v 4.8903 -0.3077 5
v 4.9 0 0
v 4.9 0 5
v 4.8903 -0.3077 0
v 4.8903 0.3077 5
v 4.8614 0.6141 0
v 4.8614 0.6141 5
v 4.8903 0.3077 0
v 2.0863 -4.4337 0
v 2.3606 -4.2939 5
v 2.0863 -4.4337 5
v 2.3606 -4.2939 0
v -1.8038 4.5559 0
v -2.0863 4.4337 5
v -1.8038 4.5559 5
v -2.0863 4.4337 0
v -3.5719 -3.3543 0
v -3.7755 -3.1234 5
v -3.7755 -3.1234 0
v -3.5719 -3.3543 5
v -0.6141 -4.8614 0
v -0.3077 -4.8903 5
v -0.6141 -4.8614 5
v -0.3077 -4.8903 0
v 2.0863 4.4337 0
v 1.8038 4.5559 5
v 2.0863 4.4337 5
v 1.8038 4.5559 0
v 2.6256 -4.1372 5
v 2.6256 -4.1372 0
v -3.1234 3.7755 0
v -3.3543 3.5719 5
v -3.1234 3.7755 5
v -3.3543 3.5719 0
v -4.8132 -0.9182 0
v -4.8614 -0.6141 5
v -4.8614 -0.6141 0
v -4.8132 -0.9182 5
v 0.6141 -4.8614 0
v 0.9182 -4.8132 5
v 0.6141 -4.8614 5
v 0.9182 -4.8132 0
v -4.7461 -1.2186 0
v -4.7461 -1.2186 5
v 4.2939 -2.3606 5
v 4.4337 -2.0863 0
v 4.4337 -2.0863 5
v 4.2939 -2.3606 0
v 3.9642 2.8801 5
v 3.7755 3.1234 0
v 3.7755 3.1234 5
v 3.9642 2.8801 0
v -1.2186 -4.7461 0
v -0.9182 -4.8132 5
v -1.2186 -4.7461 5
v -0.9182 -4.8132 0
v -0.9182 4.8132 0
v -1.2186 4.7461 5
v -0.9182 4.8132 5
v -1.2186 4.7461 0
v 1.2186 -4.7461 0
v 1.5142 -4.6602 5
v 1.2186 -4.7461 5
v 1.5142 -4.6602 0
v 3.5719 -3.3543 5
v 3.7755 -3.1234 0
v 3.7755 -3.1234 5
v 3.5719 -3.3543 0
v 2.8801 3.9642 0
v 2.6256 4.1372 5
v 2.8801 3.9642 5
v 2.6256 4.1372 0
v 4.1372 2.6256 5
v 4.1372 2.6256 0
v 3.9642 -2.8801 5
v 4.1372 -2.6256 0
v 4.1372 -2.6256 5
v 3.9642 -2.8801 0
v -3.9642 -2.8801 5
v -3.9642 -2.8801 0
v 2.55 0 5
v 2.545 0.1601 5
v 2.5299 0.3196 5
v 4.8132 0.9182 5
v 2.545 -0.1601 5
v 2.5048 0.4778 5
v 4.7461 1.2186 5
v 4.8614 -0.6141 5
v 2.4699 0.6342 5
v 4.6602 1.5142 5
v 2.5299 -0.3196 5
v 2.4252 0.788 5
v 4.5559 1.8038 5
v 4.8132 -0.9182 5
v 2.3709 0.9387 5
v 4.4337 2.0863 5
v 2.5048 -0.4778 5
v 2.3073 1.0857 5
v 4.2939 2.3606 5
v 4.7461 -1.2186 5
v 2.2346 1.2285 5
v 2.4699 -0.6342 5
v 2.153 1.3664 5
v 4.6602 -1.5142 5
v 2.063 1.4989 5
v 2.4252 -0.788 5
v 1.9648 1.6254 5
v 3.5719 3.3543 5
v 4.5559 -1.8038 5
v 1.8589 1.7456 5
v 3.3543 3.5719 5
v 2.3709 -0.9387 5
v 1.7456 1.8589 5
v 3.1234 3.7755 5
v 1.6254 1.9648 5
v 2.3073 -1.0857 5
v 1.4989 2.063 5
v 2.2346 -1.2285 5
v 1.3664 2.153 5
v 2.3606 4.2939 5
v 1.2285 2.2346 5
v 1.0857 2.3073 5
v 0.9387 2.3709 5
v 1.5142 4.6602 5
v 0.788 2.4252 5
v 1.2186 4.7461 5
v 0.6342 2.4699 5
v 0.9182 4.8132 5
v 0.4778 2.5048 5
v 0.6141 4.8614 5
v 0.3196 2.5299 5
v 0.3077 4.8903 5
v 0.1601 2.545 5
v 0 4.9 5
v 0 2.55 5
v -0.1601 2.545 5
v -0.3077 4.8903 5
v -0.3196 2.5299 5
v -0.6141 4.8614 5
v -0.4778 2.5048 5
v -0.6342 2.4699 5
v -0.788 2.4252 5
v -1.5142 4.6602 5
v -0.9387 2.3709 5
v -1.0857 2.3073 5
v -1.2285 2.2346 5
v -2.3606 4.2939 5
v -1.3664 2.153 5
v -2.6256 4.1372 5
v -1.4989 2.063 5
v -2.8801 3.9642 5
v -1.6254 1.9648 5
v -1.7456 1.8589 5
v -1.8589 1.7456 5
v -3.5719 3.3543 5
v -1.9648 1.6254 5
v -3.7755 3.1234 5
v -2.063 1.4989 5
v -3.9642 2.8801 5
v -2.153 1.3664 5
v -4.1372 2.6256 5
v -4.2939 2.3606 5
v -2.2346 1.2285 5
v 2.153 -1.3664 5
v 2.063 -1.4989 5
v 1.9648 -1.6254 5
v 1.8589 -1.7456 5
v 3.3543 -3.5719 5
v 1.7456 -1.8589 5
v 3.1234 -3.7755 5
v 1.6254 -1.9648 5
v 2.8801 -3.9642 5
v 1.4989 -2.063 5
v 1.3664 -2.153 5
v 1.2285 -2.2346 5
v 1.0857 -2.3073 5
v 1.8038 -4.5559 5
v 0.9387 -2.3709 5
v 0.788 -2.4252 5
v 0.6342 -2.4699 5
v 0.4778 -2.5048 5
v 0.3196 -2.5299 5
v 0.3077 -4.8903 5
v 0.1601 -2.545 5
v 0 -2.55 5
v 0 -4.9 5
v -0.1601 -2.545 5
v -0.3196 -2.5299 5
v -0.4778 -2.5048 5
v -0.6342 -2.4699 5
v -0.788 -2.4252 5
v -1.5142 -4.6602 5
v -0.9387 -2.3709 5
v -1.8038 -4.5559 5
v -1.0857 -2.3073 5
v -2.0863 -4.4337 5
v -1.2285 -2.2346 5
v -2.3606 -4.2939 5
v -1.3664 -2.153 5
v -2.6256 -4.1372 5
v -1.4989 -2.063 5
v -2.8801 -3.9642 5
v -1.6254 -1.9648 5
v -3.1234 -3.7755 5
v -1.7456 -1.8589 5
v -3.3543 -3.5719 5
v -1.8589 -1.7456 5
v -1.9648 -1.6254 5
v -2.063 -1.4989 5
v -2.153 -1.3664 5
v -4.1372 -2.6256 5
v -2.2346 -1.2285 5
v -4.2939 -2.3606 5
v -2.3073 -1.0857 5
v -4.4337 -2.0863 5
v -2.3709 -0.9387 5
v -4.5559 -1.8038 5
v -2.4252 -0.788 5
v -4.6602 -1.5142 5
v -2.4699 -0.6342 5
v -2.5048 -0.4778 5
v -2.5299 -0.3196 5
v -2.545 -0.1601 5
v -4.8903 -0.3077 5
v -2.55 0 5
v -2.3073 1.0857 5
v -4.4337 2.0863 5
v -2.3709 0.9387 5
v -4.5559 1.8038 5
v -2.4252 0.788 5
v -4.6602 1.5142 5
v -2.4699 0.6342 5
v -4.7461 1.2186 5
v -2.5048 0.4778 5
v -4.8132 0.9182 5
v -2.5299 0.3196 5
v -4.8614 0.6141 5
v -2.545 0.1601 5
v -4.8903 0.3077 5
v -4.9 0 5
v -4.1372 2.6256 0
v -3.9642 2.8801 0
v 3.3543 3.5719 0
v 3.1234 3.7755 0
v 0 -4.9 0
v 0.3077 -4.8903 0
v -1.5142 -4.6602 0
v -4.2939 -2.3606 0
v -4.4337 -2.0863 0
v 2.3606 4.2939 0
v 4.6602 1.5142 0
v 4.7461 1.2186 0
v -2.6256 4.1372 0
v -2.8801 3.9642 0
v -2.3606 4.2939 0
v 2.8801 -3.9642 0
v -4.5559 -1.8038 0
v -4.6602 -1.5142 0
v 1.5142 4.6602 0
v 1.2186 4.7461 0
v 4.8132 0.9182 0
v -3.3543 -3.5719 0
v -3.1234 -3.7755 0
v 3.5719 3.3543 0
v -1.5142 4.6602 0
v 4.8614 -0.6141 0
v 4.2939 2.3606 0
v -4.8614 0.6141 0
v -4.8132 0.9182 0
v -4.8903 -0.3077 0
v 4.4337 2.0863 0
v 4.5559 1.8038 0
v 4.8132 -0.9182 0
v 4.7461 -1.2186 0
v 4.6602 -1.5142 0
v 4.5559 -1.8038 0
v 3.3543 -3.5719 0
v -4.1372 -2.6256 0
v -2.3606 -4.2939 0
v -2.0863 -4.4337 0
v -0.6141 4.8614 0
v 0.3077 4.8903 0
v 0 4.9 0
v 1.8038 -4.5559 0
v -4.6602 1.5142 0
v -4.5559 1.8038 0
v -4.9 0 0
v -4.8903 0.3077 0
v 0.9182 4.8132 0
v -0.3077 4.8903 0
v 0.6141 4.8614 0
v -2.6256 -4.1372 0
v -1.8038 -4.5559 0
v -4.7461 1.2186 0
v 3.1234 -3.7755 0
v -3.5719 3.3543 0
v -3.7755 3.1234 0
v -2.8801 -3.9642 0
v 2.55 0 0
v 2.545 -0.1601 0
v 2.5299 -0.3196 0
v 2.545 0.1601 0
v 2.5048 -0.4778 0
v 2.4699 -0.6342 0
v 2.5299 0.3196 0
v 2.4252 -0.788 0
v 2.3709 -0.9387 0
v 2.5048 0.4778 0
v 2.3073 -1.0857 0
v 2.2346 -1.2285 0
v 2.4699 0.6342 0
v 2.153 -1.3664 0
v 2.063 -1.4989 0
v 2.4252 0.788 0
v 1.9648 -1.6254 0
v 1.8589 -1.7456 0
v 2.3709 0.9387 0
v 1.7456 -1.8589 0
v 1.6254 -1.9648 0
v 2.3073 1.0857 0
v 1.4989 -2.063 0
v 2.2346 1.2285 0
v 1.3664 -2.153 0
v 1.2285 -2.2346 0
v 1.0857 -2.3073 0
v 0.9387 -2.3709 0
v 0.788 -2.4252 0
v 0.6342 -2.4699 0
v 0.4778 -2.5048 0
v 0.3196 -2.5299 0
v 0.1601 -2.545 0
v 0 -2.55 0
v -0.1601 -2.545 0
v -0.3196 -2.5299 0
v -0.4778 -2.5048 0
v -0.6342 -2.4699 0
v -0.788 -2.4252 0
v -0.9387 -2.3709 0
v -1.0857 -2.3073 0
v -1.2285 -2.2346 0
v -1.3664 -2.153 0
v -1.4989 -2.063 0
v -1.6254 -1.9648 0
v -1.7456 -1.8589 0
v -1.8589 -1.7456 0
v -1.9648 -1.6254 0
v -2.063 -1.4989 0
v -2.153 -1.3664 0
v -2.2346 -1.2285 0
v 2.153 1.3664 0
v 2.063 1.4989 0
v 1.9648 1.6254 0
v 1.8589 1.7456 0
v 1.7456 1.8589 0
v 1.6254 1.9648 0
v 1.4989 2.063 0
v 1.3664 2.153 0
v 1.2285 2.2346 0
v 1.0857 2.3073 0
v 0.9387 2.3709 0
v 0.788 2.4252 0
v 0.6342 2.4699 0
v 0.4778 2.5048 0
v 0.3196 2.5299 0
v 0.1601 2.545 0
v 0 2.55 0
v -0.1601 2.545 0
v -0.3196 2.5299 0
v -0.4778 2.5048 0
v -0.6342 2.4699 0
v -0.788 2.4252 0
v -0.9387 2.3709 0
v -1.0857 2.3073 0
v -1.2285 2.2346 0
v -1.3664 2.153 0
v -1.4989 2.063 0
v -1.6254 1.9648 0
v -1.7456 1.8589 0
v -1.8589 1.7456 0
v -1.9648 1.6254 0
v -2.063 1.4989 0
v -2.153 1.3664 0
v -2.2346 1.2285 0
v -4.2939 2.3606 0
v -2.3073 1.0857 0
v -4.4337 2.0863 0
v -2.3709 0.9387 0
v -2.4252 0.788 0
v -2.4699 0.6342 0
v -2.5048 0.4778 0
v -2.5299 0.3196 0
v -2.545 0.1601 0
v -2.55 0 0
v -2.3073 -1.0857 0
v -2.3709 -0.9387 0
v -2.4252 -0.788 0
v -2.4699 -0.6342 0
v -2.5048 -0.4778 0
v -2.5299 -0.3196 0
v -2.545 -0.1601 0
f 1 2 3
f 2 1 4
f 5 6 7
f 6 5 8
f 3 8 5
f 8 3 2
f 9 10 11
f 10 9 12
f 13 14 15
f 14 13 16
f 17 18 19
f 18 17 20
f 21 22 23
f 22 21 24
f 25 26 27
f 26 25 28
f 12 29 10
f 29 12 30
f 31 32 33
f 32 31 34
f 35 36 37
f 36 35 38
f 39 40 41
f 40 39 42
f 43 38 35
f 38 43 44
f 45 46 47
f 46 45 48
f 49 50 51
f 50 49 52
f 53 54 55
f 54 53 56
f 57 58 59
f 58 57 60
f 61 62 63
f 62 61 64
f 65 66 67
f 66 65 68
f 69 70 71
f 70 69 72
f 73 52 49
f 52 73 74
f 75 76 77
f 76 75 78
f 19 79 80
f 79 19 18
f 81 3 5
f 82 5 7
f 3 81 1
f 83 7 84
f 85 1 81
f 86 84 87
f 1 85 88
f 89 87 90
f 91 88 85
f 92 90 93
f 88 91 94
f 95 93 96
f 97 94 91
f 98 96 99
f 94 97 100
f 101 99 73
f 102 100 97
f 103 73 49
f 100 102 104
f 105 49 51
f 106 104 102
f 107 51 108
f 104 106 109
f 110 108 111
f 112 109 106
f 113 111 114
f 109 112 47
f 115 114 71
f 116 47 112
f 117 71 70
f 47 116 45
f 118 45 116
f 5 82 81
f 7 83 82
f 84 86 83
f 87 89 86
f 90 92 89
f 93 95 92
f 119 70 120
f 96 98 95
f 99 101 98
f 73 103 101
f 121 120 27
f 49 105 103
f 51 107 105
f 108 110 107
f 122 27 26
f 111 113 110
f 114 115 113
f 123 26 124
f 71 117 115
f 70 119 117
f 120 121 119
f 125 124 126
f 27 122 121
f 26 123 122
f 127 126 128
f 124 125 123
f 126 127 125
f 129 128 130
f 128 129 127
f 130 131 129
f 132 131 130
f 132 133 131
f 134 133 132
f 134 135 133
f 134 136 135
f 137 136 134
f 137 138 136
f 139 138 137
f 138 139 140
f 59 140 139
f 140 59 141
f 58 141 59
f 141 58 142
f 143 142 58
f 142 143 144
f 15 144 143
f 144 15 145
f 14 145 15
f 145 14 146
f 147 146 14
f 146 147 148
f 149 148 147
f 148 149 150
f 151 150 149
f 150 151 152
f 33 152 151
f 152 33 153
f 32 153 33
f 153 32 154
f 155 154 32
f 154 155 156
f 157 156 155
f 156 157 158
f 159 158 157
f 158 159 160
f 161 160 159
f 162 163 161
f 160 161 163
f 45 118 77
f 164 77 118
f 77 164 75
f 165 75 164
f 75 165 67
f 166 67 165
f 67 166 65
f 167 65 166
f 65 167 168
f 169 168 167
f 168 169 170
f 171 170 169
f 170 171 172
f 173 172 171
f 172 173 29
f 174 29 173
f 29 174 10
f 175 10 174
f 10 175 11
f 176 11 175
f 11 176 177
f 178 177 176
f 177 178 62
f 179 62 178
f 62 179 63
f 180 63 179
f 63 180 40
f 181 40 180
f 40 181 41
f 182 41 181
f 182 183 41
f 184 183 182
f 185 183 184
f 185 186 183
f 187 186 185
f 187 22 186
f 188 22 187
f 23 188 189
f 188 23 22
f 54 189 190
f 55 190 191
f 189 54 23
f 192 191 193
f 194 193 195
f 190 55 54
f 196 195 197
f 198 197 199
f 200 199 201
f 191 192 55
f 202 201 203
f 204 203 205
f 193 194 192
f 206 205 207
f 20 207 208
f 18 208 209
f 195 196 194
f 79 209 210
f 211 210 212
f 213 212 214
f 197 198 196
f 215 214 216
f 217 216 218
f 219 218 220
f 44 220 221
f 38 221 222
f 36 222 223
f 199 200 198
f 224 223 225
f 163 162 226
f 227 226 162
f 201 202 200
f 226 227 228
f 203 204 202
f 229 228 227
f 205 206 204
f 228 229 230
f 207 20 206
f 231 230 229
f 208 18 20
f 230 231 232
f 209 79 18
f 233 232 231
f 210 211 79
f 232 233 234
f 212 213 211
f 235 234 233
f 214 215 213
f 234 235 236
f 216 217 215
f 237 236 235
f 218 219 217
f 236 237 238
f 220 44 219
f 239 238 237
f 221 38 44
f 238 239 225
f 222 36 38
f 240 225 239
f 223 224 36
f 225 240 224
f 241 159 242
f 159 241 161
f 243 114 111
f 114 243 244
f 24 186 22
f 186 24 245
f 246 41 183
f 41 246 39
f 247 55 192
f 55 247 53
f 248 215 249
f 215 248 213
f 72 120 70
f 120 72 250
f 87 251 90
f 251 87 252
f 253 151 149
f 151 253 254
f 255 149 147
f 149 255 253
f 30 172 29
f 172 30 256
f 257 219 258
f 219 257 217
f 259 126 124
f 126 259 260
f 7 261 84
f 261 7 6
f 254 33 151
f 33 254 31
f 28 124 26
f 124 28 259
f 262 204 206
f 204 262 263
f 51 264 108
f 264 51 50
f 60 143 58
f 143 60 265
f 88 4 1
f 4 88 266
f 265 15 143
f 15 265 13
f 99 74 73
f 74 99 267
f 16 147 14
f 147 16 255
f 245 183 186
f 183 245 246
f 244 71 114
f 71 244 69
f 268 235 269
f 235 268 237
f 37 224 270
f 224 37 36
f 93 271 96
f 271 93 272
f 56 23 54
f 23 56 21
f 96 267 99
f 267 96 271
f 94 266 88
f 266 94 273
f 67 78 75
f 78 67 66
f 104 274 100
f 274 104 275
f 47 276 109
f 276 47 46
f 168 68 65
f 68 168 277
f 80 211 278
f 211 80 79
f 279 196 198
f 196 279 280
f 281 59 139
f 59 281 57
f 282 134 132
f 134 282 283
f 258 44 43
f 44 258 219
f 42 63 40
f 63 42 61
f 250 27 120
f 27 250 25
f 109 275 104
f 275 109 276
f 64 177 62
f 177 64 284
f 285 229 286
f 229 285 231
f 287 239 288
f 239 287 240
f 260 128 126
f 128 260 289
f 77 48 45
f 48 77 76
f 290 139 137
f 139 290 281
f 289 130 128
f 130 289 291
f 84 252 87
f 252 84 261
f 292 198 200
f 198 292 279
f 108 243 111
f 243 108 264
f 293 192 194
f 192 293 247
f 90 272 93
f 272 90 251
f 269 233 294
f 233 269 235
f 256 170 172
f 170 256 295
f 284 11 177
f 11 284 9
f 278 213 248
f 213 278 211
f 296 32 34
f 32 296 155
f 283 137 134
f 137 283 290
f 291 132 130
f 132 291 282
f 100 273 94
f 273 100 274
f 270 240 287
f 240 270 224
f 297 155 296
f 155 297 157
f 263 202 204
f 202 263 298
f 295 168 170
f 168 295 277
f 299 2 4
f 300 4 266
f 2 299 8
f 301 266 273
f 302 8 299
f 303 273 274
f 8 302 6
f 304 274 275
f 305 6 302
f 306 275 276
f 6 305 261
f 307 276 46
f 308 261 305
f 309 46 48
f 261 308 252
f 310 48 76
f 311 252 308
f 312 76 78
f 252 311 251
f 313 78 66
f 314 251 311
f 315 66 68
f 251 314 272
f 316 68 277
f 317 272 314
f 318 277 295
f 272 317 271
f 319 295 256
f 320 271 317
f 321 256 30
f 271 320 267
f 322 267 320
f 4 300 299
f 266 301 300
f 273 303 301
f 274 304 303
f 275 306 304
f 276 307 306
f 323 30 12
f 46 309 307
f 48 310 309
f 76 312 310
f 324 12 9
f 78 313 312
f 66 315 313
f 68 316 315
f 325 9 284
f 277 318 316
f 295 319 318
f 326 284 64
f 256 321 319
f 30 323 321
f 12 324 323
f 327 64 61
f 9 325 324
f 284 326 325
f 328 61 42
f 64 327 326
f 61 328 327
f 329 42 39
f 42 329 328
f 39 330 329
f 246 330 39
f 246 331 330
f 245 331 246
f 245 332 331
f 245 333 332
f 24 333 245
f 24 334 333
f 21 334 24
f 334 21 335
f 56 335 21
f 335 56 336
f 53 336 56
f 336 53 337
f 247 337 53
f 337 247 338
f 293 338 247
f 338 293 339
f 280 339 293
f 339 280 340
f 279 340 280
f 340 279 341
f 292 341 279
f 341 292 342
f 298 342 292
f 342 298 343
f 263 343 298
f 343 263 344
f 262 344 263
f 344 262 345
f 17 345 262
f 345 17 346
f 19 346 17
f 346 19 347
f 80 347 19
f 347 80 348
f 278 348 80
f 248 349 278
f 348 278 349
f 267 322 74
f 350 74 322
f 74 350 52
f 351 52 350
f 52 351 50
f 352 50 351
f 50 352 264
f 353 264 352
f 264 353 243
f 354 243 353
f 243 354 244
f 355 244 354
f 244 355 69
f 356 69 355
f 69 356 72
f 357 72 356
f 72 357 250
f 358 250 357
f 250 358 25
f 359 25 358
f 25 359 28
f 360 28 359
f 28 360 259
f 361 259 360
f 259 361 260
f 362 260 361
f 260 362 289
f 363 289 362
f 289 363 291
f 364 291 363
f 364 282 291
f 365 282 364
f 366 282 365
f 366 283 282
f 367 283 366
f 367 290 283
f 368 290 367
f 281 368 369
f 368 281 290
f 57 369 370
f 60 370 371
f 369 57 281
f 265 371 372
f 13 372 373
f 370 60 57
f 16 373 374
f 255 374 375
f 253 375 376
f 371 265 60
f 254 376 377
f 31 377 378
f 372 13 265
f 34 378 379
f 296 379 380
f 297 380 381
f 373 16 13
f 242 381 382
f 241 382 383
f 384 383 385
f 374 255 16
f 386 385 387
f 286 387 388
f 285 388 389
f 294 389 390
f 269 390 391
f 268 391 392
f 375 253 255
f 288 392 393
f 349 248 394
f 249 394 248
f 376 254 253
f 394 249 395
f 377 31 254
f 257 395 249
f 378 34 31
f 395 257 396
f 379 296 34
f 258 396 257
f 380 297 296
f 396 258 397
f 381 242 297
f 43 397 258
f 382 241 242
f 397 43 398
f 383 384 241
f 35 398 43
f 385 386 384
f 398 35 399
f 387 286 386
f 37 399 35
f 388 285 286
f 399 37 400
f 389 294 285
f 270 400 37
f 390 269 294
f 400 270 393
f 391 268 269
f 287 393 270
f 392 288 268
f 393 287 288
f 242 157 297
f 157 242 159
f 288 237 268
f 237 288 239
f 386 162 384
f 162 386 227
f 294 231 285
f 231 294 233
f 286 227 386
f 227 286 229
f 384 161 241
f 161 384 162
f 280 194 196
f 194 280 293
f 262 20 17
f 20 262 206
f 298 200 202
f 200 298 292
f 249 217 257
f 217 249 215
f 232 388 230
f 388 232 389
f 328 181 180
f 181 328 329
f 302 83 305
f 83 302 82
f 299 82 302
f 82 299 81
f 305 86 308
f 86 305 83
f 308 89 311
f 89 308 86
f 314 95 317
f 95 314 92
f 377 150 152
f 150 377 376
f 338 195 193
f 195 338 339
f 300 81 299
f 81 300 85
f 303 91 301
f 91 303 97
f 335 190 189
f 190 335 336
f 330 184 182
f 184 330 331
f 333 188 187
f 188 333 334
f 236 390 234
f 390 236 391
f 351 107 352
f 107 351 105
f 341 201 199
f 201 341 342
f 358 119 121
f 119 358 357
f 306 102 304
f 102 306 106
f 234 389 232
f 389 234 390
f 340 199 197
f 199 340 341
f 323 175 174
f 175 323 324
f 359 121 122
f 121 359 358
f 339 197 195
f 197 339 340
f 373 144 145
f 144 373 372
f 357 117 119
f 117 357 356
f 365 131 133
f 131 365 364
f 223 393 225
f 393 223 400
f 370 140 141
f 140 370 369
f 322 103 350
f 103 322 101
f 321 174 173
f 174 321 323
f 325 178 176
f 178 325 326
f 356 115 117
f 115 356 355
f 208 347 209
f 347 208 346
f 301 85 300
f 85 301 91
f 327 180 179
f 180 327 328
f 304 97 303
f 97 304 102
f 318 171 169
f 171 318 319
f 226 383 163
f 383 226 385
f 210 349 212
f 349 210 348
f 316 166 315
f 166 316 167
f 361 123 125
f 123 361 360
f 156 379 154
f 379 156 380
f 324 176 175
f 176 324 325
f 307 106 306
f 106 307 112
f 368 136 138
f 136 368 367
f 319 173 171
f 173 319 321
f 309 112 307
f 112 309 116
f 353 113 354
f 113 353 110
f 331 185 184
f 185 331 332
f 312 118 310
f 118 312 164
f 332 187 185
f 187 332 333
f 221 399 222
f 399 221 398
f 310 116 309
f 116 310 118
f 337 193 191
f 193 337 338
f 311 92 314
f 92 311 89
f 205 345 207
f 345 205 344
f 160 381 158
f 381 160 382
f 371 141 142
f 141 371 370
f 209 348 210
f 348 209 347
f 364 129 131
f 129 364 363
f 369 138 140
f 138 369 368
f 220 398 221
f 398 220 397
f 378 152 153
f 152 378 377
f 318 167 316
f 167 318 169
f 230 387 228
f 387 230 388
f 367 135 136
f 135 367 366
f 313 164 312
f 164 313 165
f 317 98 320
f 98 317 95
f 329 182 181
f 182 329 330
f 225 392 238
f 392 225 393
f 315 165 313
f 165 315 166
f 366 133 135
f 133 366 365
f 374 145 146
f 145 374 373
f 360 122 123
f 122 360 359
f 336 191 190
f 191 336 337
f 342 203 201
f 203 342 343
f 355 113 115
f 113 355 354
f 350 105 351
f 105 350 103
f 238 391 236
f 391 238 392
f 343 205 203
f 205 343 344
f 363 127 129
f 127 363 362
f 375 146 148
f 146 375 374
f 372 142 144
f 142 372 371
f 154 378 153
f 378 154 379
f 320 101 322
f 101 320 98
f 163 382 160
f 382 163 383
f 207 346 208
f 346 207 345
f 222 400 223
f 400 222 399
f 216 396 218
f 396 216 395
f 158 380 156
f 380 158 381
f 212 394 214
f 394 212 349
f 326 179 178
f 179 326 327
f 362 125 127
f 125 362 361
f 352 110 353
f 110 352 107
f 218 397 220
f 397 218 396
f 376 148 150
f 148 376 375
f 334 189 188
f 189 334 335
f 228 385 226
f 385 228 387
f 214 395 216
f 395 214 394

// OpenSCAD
$fa = 0.1;
$fn = 100;

outer = 9.8;
inner = 5.1;
height = 5;

difference() {
  cylinder(height, d=outer);

  cylinder(height, d=inner);
}
